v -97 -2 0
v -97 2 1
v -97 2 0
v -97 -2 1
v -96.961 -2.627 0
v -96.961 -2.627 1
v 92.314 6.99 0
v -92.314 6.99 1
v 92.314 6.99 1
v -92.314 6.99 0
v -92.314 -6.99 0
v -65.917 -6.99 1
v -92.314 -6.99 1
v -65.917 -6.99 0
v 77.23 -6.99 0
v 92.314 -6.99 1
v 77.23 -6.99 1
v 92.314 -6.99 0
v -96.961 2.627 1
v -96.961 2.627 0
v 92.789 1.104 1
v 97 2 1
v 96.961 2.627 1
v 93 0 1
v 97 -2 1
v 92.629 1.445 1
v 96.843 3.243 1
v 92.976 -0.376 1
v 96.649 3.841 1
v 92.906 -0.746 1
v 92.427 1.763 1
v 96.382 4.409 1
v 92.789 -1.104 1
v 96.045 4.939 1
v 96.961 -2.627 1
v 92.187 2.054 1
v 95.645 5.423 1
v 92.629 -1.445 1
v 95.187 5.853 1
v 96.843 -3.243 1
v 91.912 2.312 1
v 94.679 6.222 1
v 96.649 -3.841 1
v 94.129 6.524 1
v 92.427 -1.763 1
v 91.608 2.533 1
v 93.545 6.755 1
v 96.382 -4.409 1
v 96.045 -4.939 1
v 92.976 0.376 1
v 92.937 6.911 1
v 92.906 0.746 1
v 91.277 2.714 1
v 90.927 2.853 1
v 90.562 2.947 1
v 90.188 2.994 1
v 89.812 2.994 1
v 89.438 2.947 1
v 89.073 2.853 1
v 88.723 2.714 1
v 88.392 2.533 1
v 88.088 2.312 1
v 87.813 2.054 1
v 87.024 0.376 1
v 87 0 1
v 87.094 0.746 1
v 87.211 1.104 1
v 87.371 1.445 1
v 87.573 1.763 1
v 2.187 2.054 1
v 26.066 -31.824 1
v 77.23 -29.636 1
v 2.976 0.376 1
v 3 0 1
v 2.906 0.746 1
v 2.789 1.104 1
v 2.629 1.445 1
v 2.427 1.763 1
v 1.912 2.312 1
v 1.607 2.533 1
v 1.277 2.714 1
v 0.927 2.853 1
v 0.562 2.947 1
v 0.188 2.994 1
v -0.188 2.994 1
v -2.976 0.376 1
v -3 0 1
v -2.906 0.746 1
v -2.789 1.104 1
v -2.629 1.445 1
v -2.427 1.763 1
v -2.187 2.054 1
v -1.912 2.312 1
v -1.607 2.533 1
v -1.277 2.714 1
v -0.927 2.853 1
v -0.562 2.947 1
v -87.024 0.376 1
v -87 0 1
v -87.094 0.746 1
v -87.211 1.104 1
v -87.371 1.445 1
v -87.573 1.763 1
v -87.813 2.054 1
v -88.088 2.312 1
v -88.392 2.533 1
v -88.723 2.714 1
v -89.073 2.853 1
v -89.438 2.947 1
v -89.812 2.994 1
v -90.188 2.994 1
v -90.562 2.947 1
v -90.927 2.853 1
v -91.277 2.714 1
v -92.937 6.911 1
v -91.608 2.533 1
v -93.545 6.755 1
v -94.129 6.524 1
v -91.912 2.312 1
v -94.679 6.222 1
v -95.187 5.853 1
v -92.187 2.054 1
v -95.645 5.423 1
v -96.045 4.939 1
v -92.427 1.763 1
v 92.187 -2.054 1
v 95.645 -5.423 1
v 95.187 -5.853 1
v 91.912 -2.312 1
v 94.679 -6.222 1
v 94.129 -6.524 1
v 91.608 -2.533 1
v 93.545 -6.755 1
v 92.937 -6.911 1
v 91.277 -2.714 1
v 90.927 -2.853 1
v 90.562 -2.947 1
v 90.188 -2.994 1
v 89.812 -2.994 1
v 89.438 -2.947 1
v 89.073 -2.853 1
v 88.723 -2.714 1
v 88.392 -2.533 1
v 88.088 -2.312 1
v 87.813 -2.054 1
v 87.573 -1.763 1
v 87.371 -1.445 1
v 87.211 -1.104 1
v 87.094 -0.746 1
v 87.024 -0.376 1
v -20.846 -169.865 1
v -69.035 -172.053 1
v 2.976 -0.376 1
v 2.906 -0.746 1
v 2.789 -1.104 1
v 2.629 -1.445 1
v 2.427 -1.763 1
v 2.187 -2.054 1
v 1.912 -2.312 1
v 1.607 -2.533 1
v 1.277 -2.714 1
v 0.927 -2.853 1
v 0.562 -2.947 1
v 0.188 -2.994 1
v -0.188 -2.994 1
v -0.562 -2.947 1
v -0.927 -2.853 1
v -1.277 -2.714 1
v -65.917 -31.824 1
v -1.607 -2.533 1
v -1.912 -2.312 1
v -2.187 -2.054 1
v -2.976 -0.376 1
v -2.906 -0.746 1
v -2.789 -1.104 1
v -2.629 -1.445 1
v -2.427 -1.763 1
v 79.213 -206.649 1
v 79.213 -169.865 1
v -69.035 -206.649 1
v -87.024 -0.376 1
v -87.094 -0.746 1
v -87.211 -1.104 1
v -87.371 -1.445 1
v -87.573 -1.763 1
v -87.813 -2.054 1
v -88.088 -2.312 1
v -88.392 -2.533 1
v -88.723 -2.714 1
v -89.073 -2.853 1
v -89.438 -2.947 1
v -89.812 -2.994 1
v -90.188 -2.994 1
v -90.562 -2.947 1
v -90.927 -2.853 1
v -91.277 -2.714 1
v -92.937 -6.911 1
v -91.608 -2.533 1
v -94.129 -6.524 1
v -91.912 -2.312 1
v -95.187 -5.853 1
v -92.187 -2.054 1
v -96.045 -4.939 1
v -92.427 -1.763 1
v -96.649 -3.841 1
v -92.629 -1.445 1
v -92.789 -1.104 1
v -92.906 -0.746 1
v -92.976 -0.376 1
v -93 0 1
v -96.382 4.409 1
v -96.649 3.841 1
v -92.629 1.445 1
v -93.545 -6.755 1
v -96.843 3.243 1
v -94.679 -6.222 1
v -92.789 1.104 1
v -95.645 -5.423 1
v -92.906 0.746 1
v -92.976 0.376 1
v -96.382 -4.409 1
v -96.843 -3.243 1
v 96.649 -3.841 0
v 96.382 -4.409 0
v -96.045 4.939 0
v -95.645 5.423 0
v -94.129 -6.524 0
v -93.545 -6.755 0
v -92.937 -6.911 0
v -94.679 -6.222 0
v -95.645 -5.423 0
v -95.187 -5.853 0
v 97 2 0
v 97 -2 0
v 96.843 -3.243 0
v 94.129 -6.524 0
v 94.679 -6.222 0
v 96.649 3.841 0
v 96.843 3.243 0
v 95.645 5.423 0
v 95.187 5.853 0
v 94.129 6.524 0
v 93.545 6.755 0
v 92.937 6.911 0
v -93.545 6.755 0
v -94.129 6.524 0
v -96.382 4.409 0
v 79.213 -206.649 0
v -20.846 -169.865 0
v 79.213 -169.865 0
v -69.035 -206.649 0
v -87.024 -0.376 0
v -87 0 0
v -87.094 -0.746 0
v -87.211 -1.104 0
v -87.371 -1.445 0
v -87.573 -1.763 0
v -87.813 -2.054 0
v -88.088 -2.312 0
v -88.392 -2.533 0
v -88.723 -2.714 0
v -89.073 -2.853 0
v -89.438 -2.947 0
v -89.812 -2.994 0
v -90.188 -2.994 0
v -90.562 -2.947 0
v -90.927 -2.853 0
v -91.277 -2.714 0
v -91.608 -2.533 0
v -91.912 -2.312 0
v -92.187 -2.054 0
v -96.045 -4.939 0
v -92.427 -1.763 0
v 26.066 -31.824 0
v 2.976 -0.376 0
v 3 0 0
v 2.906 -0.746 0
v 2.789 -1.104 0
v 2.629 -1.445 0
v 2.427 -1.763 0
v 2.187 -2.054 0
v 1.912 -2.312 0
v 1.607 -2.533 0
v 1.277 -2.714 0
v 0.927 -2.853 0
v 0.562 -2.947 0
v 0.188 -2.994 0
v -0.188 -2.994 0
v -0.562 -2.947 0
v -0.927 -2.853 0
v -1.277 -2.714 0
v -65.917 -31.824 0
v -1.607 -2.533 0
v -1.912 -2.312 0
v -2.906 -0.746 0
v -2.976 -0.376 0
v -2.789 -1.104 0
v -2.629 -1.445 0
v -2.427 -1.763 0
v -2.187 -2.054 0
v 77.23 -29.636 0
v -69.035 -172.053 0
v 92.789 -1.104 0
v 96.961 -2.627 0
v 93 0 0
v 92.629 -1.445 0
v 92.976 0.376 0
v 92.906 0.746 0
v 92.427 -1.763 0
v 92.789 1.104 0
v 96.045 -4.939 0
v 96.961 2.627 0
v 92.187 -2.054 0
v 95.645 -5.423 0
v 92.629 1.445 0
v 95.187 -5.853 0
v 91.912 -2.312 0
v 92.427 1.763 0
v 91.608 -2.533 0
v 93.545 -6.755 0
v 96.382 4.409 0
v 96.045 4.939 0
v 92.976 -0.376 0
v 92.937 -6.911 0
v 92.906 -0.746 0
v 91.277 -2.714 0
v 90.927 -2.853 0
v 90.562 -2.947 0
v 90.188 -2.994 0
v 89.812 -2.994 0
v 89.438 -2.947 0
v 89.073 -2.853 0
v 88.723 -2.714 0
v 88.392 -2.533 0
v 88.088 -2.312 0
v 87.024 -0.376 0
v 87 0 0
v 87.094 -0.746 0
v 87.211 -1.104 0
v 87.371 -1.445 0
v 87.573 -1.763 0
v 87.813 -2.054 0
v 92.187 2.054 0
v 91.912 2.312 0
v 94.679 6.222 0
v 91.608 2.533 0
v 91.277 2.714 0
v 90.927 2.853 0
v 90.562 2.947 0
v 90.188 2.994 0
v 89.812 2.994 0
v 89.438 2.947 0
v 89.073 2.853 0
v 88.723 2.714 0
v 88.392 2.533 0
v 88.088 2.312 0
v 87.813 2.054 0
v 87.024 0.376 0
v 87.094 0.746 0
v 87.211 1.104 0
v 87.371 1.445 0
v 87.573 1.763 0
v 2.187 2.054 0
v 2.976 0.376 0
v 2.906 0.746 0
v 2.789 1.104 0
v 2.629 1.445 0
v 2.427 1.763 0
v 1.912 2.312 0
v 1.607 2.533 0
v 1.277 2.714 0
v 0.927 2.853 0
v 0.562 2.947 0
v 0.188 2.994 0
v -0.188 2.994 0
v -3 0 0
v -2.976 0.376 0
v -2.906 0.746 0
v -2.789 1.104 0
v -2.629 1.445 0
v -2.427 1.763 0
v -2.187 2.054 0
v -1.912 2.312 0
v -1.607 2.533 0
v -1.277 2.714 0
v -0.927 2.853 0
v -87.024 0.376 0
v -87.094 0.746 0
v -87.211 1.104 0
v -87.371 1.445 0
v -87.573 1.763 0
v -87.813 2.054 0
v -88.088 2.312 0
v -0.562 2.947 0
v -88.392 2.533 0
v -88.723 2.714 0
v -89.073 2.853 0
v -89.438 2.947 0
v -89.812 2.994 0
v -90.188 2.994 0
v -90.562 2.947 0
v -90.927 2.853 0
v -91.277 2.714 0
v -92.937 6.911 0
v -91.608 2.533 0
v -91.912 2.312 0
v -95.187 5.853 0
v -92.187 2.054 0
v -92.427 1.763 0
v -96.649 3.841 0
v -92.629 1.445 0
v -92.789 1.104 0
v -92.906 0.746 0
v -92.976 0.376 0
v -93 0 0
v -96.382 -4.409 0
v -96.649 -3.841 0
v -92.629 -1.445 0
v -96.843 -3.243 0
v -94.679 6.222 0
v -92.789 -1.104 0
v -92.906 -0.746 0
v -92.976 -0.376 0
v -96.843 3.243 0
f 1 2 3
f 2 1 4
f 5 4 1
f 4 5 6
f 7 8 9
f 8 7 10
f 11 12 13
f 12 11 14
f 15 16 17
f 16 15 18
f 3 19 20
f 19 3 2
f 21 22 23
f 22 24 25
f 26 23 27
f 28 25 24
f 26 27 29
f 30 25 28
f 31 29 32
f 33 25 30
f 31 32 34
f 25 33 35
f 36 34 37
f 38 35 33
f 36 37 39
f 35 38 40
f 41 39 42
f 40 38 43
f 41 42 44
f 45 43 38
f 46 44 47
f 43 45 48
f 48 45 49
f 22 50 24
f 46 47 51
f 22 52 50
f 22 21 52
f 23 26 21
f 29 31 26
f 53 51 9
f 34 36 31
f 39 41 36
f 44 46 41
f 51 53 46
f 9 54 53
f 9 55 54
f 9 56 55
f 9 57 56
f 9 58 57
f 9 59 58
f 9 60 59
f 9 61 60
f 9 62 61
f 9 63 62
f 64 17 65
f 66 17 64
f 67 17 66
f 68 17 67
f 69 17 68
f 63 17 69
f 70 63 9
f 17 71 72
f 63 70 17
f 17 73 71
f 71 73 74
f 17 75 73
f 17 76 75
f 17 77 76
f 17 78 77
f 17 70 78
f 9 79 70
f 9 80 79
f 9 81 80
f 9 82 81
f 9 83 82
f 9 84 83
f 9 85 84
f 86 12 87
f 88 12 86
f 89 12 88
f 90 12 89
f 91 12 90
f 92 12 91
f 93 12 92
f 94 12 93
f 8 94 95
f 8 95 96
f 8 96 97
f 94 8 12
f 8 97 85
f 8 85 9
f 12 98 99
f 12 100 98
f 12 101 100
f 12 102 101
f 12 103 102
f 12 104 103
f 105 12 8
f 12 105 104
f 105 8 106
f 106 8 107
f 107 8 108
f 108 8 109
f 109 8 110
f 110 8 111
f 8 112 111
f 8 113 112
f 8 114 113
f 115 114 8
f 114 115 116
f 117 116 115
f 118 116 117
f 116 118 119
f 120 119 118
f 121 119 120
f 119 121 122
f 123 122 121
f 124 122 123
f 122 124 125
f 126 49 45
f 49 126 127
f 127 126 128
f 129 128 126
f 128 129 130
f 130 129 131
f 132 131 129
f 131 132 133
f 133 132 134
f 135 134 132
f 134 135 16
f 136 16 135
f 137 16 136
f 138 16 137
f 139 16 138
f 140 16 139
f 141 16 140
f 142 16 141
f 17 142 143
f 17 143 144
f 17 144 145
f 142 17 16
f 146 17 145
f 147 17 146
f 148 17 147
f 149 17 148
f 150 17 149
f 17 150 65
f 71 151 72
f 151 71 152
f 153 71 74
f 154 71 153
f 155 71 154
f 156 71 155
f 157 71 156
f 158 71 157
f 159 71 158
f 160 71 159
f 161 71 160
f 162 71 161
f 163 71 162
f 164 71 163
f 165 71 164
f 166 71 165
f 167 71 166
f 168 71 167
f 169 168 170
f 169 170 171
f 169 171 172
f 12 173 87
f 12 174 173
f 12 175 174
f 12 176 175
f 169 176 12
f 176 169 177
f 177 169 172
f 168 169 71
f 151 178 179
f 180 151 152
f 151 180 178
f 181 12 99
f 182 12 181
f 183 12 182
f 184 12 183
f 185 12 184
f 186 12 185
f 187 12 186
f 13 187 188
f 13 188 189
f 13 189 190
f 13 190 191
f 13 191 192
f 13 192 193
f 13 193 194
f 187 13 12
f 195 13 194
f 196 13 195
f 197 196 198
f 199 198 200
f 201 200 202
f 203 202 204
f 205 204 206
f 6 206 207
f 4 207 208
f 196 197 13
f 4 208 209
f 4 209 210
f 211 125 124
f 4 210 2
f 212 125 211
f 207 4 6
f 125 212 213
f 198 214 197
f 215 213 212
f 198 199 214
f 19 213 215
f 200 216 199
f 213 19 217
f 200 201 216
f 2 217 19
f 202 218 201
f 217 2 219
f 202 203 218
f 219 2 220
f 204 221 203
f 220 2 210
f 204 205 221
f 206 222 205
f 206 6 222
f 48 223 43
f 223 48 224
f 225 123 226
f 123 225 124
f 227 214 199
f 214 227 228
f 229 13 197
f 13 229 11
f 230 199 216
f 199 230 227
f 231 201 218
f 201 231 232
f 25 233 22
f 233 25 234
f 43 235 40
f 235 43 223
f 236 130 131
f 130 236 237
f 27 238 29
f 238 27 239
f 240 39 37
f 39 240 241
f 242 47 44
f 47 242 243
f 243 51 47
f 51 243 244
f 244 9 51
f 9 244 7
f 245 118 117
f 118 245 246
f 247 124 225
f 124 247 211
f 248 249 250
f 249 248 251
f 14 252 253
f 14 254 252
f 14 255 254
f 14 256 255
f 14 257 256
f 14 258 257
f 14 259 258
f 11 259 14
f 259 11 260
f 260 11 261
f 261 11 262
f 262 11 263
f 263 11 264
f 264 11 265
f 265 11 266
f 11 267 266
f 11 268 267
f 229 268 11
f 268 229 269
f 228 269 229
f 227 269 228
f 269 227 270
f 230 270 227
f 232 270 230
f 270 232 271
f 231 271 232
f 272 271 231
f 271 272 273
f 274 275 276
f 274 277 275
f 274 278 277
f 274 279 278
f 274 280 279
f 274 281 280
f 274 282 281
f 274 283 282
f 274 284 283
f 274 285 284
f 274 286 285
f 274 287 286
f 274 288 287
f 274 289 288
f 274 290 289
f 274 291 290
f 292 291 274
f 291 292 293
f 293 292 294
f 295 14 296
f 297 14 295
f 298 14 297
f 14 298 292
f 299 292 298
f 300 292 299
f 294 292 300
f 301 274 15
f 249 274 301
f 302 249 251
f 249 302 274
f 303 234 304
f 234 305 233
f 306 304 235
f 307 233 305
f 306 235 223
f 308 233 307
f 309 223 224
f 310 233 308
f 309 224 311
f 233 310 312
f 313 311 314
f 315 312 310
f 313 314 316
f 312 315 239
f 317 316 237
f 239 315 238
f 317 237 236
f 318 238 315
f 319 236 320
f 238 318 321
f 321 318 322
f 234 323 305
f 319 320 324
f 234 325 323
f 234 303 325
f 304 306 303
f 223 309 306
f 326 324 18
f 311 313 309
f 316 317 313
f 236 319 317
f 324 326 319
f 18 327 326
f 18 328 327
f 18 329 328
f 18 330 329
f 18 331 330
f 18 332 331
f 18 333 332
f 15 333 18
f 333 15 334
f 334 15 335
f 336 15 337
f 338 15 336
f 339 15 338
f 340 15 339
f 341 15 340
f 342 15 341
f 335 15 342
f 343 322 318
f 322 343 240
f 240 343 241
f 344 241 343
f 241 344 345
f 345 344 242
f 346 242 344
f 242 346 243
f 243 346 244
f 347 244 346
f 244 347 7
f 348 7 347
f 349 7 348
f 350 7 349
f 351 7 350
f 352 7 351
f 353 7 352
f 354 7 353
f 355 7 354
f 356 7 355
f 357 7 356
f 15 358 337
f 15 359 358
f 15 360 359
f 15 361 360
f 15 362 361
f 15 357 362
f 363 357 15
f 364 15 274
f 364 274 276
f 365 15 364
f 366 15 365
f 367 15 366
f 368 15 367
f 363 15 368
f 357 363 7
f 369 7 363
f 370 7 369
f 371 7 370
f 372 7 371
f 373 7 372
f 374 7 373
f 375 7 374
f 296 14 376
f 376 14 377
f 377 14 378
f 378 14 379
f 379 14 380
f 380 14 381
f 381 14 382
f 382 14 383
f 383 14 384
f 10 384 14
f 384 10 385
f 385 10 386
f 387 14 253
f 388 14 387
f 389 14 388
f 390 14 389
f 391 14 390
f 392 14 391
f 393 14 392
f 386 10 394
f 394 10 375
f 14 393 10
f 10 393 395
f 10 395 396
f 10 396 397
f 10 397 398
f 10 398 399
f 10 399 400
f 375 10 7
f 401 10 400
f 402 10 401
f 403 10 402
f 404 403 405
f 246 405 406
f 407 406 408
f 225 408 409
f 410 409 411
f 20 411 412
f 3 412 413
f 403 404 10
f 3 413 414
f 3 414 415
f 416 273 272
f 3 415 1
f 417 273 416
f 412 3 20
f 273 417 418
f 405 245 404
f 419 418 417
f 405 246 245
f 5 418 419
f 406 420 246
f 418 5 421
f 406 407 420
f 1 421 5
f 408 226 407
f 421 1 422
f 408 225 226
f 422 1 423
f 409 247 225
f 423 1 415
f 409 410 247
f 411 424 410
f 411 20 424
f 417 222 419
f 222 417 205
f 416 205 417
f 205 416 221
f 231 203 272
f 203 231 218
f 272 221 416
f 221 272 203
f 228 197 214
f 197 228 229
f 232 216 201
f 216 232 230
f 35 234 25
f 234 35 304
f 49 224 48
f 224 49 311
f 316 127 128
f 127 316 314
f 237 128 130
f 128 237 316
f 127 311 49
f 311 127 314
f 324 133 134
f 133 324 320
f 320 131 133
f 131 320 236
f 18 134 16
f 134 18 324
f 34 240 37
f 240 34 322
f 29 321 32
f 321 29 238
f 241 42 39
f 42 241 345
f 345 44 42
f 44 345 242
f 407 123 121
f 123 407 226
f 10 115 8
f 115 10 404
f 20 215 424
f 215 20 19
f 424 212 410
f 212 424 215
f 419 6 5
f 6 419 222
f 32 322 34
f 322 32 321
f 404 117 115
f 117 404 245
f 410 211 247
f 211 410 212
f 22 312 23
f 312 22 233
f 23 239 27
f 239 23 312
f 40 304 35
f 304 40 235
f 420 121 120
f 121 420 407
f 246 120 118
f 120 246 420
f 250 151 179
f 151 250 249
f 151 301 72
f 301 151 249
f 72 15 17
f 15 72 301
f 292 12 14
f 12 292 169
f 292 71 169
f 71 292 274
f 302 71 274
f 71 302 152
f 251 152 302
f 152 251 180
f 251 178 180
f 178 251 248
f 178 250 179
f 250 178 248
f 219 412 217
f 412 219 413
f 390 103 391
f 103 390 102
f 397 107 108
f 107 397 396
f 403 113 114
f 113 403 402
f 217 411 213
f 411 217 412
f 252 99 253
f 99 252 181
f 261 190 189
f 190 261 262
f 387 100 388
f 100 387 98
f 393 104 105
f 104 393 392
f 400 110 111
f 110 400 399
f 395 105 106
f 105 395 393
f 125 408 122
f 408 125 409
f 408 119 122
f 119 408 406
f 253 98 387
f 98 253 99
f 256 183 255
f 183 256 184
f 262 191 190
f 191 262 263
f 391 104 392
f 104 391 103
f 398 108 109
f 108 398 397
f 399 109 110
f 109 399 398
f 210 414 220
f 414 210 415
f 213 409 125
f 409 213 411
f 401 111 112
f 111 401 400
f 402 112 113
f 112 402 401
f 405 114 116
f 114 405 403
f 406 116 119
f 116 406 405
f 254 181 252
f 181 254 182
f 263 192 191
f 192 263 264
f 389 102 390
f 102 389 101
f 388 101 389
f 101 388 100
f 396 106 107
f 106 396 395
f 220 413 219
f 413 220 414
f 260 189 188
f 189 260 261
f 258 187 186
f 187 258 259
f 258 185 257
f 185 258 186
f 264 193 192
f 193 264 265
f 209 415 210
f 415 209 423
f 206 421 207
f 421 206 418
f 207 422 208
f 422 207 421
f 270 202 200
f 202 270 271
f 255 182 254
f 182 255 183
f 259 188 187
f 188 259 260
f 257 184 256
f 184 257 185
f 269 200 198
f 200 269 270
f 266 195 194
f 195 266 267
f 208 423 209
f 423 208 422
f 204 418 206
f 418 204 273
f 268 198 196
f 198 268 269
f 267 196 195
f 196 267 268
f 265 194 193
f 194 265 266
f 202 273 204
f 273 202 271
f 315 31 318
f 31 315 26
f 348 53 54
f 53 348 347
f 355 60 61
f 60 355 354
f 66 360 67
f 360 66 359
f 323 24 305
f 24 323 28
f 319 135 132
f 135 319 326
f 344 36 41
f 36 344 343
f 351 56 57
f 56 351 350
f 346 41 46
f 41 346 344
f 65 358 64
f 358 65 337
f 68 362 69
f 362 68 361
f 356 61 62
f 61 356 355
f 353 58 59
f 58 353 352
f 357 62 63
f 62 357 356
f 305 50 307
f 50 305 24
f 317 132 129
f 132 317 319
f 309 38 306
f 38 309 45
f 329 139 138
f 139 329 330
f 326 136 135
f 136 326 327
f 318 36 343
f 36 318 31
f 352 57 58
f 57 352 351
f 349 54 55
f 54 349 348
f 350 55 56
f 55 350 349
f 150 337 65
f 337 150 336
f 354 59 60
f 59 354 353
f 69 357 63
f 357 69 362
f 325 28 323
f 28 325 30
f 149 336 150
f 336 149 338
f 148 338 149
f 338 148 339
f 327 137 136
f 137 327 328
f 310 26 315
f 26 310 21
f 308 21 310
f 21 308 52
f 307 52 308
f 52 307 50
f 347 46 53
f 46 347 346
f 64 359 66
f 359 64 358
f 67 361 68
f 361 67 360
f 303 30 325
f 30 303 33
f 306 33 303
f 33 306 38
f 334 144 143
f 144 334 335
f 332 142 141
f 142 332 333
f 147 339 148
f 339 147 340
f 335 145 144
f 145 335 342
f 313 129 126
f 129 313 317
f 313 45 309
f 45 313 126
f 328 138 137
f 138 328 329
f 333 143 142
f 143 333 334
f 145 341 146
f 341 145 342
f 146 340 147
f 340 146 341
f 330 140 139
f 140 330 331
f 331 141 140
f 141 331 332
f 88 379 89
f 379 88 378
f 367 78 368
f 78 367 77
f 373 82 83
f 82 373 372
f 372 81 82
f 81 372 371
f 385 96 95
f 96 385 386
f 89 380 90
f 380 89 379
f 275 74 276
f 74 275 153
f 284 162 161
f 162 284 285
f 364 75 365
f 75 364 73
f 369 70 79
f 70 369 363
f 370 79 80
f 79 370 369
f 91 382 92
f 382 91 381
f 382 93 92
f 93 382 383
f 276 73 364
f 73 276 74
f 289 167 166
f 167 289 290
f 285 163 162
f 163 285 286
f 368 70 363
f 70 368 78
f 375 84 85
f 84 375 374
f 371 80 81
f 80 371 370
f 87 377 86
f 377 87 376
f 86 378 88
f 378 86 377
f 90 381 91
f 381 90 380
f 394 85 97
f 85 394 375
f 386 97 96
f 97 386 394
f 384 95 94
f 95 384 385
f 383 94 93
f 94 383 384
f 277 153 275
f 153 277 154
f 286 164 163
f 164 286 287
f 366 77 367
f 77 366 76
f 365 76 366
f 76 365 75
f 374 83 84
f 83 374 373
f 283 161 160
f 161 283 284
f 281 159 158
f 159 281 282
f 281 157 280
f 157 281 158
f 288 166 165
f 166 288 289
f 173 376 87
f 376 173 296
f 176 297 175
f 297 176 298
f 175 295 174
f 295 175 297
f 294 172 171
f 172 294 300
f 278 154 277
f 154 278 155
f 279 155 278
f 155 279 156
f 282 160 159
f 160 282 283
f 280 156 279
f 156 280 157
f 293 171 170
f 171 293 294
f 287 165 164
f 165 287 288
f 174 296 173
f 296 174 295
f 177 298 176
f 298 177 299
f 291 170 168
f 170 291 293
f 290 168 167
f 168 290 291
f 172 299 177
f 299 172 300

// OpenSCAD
$fn = 50;


difference() {
	union() {
		translate(v = [0, 0, 0]) {
			rotate(a = [0, 0, 0]) {
				hull() {
					translate(v = [-92.0000000000, 2.0000000000, 0]) {
						rotate(a = [0, 0, 0]) {
							translate(v = [0, 0, 0]) {
								rotate(a = [0, 0, 0]) {
									cylinder(h = 1, r = 5);
								}
							}
						}
					}
					translate(v = [92.0000000000, 2.0000000000, 0]) {
						rotate(a = [0, 0, 0]) {
							translate(v = [0, 0, 0]) {
								rotate(a = [0, 0, 0]) {
									cylinder(h = 1, r = 5);
								}
							}
						}
					}
					translate(v = [-92.0000000000, -2.0000000000, 0]) {
						rotate(a = [0, 0, 0]) {
							translate(v = [0, 0, 0]) {
								rotate(a = [0, 0, 0]) {
									cylinder(h = 1, r = 5);
								}
							}
						}
					}
					translate(v = [92.0000000000, -2.0000000000, 0]) {
						rotate(a = [0, 0, 0]) {
							translate(v = [0, 0, 0]) {
								rotate(a = [0, 0, 0]) {
									cylinder(h = 1, r = 5);
								}
							}
						}
					}
				}
			}
		}
		translate(v = [0, 0, 0]) {
			rotate(a = [0, 0, 0]) {
				linear_extrude(height = 1) {
					text(font = "DejaVu Sans Mono:style=Bold", halign = "center", size = 209.0000000000, text = "Z", valign = "top");
				}
			}
		}
	}
	union() {
		translate(v = [-90.0000000000, 0.0000000000, -125.0000000000]) {
			rotate(a = [0, 0, 0]) {
				cylinder(h = 250, r = 3.0000000000);
			}
		}
		translate(v = [90.0000000000, 0.0000000000, -125.0000000000]) {
			rotate(a = [0, 0, 0]) {
				cylinder(h = 250, r = 3.0000000000);
			}
		}
		translate(v = [90.0000000000, 0.0000000000, -125.0000000000]) {
			rotate(a = [0, 0, 0]) {
				cylinder(h = 250, r = 3.0000000000);
			}
		}
		translate(v = [0, 0, -125.0000000000]) {
			rotate(a = [0, 0, 0]) {
				cylinder(h = 250, r = 3.0000000000);
			}
		}
	}
}
